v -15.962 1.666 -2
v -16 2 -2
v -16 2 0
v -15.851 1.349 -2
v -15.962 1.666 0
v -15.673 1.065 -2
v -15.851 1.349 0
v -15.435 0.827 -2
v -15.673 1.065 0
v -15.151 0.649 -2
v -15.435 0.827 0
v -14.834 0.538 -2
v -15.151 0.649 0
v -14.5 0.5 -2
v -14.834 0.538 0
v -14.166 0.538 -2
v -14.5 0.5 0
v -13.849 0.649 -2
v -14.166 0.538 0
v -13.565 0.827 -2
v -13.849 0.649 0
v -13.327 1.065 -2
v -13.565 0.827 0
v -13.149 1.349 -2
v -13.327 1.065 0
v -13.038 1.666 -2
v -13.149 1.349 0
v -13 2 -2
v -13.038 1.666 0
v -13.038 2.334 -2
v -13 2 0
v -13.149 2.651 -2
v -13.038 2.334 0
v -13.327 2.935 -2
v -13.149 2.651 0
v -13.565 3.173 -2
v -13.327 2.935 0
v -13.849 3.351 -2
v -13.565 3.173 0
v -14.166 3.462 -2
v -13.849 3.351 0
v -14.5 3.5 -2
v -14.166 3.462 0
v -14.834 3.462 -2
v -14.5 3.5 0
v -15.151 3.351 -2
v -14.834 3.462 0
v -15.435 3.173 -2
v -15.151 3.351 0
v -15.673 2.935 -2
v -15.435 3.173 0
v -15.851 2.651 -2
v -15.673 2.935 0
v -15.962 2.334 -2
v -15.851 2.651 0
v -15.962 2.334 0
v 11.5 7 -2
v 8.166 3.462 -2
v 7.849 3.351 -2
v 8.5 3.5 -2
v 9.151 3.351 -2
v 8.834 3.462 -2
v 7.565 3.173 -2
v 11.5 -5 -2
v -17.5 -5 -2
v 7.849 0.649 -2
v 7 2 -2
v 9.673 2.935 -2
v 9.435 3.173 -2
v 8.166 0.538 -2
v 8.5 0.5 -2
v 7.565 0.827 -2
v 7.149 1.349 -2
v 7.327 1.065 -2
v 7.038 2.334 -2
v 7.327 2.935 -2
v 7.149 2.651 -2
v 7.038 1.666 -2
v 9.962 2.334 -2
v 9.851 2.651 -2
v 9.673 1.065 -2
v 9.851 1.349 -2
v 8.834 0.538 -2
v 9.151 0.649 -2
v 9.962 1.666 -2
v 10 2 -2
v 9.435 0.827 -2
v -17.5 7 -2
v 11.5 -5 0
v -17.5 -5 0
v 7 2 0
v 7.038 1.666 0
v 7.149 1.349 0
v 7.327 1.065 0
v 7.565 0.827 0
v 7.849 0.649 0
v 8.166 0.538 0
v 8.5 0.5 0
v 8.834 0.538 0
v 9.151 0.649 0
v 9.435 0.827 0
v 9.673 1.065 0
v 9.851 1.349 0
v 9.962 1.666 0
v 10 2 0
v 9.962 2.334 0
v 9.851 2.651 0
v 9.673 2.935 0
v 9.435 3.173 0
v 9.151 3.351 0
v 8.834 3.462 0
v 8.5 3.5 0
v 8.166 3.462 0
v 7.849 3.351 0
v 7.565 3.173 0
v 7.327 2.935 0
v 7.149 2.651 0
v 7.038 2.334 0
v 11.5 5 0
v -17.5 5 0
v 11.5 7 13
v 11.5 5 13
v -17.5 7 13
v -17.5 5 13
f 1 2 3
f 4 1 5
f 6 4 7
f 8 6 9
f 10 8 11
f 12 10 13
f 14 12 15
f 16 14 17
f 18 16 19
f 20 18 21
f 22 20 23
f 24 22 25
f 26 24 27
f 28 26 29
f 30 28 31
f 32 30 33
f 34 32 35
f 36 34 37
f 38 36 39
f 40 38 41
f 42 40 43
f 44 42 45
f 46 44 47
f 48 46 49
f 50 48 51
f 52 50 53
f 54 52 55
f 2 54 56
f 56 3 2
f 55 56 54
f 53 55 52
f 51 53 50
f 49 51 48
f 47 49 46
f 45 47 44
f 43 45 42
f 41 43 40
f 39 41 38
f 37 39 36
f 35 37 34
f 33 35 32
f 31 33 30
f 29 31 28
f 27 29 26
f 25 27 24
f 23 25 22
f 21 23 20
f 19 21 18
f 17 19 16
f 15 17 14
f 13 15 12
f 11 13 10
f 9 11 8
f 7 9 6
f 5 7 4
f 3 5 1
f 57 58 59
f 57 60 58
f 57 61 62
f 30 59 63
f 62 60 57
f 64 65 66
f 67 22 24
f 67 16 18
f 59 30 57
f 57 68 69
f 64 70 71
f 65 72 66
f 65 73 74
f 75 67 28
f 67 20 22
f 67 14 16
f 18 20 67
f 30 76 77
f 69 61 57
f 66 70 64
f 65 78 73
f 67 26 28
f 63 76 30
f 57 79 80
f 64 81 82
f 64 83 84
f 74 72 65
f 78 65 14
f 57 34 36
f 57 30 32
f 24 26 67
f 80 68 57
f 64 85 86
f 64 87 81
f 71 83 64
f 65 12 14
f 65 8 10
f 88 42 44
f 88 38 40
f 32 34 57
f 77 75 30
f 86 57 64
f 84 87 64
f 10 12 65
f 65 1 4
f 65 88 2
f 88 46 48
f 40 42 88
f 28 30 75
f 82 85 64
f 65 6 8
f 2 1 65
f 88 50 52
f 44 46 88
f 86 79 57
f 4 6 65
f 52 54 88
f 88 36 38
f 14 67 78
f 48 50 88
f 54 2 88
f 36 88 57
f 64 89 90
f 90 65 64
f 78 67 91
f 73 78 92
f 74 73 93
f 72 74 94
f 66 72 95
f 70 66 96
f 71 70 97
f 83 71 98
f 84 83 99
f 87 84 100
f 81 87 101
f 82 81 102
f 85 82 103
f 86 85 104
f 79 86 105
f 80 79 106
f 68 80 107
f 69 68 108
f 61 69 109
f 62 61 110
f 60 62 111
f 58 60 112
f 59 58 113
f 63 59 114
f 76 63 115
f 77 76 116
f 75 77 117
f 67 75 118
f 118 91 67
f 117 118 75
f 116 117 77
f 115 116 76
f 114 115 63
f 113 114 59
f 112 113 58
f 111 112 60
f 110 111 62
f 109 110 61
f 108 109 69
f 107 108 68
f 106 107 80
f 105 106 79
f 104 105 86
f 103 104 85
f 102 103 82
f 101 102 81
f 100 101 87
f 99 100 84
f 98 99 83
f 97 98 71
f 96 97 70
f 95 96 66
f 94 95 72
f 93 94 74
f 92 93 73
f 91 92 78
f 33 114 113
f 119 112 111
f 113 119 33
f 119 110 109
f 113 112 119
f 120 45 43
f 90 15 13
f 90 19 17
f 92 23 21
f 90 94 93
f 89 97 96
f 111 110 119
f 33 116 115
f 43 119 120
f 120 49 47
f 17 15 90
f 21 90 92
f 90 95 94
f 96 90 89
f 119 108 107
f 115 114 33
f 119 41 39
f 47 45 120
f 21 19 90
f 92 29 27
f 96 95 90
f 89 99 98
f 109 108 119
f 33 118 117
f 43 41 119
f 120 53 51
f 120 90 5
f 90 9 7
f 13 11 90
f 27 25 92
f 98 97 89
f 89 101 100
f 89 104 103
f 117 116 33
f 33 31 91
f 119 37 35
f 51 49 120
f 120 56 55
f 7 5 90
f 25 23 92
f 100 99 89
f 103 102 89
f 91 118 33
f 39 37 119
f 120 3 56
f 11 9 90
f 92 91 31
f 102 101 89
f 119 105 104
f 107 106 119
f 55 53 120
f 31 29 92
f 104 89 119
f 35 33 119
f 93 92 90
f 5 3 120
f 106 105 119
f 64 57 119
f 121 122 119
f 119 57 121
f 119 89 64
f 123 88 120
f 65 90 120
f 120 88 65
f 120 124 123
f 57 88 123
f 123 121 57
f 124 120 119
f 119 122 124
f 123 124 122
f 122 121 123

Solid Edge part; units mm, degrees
sketch "Sketch1" plane through (0, 0, 0) normal (0, 0, 1) x (1, 0, 0)
  line L0 (-11.5, -5) -> (11.5, -5)
  line L1 (11.5, -5) -> (11.5, 5)
  line L2 (11.5, 5) -> (-11.5, 5)
  line L3 (-17.5, 5) -> (-11.5, 5)
  line L4 (-17.5, -1) -> (-17.5, 5)
  line L5 (-17.5, -5) -> (-17.5, -1)
  line L6 (-11.5, -5) -> (-17.5, -5)
extrude "Protrusion1" add sketch "Sketch1" against normal blind 2
sketch "Sketch2" plane through (0, 0, 0) normal (0, 0, 1) x (1, 0, 0)
  circle A0 centre (-14.5, 2) radius 1.5
  circle A1 centre (8.5, 2) radius 1.5
  dimension "D1" = 23
  dimension "D2" = 3
  dimension "D3" = 3
extrude "ExtrudedCutout_1" cut sketch "Sketch2" along normal mid plane 28.6667
sketch "Sketch3" plane through (0, 0, 0) normal (0, 0, 1) x (1, 0, 0)
  line L0 (11.5, 7) -> (-17.5, 7)
  line L1 (-17.5, 7) -> (-17.5, 5)
  line L2 (-17.5, 5) -> (11.5, 5)
  line L3 (11.5, 5) -> (11.5, 7)
extrude "ExtrudedProtrusion_3" add sketch "Sketch3" against normal up to vertex (2 mm away) and the other way blind 13
